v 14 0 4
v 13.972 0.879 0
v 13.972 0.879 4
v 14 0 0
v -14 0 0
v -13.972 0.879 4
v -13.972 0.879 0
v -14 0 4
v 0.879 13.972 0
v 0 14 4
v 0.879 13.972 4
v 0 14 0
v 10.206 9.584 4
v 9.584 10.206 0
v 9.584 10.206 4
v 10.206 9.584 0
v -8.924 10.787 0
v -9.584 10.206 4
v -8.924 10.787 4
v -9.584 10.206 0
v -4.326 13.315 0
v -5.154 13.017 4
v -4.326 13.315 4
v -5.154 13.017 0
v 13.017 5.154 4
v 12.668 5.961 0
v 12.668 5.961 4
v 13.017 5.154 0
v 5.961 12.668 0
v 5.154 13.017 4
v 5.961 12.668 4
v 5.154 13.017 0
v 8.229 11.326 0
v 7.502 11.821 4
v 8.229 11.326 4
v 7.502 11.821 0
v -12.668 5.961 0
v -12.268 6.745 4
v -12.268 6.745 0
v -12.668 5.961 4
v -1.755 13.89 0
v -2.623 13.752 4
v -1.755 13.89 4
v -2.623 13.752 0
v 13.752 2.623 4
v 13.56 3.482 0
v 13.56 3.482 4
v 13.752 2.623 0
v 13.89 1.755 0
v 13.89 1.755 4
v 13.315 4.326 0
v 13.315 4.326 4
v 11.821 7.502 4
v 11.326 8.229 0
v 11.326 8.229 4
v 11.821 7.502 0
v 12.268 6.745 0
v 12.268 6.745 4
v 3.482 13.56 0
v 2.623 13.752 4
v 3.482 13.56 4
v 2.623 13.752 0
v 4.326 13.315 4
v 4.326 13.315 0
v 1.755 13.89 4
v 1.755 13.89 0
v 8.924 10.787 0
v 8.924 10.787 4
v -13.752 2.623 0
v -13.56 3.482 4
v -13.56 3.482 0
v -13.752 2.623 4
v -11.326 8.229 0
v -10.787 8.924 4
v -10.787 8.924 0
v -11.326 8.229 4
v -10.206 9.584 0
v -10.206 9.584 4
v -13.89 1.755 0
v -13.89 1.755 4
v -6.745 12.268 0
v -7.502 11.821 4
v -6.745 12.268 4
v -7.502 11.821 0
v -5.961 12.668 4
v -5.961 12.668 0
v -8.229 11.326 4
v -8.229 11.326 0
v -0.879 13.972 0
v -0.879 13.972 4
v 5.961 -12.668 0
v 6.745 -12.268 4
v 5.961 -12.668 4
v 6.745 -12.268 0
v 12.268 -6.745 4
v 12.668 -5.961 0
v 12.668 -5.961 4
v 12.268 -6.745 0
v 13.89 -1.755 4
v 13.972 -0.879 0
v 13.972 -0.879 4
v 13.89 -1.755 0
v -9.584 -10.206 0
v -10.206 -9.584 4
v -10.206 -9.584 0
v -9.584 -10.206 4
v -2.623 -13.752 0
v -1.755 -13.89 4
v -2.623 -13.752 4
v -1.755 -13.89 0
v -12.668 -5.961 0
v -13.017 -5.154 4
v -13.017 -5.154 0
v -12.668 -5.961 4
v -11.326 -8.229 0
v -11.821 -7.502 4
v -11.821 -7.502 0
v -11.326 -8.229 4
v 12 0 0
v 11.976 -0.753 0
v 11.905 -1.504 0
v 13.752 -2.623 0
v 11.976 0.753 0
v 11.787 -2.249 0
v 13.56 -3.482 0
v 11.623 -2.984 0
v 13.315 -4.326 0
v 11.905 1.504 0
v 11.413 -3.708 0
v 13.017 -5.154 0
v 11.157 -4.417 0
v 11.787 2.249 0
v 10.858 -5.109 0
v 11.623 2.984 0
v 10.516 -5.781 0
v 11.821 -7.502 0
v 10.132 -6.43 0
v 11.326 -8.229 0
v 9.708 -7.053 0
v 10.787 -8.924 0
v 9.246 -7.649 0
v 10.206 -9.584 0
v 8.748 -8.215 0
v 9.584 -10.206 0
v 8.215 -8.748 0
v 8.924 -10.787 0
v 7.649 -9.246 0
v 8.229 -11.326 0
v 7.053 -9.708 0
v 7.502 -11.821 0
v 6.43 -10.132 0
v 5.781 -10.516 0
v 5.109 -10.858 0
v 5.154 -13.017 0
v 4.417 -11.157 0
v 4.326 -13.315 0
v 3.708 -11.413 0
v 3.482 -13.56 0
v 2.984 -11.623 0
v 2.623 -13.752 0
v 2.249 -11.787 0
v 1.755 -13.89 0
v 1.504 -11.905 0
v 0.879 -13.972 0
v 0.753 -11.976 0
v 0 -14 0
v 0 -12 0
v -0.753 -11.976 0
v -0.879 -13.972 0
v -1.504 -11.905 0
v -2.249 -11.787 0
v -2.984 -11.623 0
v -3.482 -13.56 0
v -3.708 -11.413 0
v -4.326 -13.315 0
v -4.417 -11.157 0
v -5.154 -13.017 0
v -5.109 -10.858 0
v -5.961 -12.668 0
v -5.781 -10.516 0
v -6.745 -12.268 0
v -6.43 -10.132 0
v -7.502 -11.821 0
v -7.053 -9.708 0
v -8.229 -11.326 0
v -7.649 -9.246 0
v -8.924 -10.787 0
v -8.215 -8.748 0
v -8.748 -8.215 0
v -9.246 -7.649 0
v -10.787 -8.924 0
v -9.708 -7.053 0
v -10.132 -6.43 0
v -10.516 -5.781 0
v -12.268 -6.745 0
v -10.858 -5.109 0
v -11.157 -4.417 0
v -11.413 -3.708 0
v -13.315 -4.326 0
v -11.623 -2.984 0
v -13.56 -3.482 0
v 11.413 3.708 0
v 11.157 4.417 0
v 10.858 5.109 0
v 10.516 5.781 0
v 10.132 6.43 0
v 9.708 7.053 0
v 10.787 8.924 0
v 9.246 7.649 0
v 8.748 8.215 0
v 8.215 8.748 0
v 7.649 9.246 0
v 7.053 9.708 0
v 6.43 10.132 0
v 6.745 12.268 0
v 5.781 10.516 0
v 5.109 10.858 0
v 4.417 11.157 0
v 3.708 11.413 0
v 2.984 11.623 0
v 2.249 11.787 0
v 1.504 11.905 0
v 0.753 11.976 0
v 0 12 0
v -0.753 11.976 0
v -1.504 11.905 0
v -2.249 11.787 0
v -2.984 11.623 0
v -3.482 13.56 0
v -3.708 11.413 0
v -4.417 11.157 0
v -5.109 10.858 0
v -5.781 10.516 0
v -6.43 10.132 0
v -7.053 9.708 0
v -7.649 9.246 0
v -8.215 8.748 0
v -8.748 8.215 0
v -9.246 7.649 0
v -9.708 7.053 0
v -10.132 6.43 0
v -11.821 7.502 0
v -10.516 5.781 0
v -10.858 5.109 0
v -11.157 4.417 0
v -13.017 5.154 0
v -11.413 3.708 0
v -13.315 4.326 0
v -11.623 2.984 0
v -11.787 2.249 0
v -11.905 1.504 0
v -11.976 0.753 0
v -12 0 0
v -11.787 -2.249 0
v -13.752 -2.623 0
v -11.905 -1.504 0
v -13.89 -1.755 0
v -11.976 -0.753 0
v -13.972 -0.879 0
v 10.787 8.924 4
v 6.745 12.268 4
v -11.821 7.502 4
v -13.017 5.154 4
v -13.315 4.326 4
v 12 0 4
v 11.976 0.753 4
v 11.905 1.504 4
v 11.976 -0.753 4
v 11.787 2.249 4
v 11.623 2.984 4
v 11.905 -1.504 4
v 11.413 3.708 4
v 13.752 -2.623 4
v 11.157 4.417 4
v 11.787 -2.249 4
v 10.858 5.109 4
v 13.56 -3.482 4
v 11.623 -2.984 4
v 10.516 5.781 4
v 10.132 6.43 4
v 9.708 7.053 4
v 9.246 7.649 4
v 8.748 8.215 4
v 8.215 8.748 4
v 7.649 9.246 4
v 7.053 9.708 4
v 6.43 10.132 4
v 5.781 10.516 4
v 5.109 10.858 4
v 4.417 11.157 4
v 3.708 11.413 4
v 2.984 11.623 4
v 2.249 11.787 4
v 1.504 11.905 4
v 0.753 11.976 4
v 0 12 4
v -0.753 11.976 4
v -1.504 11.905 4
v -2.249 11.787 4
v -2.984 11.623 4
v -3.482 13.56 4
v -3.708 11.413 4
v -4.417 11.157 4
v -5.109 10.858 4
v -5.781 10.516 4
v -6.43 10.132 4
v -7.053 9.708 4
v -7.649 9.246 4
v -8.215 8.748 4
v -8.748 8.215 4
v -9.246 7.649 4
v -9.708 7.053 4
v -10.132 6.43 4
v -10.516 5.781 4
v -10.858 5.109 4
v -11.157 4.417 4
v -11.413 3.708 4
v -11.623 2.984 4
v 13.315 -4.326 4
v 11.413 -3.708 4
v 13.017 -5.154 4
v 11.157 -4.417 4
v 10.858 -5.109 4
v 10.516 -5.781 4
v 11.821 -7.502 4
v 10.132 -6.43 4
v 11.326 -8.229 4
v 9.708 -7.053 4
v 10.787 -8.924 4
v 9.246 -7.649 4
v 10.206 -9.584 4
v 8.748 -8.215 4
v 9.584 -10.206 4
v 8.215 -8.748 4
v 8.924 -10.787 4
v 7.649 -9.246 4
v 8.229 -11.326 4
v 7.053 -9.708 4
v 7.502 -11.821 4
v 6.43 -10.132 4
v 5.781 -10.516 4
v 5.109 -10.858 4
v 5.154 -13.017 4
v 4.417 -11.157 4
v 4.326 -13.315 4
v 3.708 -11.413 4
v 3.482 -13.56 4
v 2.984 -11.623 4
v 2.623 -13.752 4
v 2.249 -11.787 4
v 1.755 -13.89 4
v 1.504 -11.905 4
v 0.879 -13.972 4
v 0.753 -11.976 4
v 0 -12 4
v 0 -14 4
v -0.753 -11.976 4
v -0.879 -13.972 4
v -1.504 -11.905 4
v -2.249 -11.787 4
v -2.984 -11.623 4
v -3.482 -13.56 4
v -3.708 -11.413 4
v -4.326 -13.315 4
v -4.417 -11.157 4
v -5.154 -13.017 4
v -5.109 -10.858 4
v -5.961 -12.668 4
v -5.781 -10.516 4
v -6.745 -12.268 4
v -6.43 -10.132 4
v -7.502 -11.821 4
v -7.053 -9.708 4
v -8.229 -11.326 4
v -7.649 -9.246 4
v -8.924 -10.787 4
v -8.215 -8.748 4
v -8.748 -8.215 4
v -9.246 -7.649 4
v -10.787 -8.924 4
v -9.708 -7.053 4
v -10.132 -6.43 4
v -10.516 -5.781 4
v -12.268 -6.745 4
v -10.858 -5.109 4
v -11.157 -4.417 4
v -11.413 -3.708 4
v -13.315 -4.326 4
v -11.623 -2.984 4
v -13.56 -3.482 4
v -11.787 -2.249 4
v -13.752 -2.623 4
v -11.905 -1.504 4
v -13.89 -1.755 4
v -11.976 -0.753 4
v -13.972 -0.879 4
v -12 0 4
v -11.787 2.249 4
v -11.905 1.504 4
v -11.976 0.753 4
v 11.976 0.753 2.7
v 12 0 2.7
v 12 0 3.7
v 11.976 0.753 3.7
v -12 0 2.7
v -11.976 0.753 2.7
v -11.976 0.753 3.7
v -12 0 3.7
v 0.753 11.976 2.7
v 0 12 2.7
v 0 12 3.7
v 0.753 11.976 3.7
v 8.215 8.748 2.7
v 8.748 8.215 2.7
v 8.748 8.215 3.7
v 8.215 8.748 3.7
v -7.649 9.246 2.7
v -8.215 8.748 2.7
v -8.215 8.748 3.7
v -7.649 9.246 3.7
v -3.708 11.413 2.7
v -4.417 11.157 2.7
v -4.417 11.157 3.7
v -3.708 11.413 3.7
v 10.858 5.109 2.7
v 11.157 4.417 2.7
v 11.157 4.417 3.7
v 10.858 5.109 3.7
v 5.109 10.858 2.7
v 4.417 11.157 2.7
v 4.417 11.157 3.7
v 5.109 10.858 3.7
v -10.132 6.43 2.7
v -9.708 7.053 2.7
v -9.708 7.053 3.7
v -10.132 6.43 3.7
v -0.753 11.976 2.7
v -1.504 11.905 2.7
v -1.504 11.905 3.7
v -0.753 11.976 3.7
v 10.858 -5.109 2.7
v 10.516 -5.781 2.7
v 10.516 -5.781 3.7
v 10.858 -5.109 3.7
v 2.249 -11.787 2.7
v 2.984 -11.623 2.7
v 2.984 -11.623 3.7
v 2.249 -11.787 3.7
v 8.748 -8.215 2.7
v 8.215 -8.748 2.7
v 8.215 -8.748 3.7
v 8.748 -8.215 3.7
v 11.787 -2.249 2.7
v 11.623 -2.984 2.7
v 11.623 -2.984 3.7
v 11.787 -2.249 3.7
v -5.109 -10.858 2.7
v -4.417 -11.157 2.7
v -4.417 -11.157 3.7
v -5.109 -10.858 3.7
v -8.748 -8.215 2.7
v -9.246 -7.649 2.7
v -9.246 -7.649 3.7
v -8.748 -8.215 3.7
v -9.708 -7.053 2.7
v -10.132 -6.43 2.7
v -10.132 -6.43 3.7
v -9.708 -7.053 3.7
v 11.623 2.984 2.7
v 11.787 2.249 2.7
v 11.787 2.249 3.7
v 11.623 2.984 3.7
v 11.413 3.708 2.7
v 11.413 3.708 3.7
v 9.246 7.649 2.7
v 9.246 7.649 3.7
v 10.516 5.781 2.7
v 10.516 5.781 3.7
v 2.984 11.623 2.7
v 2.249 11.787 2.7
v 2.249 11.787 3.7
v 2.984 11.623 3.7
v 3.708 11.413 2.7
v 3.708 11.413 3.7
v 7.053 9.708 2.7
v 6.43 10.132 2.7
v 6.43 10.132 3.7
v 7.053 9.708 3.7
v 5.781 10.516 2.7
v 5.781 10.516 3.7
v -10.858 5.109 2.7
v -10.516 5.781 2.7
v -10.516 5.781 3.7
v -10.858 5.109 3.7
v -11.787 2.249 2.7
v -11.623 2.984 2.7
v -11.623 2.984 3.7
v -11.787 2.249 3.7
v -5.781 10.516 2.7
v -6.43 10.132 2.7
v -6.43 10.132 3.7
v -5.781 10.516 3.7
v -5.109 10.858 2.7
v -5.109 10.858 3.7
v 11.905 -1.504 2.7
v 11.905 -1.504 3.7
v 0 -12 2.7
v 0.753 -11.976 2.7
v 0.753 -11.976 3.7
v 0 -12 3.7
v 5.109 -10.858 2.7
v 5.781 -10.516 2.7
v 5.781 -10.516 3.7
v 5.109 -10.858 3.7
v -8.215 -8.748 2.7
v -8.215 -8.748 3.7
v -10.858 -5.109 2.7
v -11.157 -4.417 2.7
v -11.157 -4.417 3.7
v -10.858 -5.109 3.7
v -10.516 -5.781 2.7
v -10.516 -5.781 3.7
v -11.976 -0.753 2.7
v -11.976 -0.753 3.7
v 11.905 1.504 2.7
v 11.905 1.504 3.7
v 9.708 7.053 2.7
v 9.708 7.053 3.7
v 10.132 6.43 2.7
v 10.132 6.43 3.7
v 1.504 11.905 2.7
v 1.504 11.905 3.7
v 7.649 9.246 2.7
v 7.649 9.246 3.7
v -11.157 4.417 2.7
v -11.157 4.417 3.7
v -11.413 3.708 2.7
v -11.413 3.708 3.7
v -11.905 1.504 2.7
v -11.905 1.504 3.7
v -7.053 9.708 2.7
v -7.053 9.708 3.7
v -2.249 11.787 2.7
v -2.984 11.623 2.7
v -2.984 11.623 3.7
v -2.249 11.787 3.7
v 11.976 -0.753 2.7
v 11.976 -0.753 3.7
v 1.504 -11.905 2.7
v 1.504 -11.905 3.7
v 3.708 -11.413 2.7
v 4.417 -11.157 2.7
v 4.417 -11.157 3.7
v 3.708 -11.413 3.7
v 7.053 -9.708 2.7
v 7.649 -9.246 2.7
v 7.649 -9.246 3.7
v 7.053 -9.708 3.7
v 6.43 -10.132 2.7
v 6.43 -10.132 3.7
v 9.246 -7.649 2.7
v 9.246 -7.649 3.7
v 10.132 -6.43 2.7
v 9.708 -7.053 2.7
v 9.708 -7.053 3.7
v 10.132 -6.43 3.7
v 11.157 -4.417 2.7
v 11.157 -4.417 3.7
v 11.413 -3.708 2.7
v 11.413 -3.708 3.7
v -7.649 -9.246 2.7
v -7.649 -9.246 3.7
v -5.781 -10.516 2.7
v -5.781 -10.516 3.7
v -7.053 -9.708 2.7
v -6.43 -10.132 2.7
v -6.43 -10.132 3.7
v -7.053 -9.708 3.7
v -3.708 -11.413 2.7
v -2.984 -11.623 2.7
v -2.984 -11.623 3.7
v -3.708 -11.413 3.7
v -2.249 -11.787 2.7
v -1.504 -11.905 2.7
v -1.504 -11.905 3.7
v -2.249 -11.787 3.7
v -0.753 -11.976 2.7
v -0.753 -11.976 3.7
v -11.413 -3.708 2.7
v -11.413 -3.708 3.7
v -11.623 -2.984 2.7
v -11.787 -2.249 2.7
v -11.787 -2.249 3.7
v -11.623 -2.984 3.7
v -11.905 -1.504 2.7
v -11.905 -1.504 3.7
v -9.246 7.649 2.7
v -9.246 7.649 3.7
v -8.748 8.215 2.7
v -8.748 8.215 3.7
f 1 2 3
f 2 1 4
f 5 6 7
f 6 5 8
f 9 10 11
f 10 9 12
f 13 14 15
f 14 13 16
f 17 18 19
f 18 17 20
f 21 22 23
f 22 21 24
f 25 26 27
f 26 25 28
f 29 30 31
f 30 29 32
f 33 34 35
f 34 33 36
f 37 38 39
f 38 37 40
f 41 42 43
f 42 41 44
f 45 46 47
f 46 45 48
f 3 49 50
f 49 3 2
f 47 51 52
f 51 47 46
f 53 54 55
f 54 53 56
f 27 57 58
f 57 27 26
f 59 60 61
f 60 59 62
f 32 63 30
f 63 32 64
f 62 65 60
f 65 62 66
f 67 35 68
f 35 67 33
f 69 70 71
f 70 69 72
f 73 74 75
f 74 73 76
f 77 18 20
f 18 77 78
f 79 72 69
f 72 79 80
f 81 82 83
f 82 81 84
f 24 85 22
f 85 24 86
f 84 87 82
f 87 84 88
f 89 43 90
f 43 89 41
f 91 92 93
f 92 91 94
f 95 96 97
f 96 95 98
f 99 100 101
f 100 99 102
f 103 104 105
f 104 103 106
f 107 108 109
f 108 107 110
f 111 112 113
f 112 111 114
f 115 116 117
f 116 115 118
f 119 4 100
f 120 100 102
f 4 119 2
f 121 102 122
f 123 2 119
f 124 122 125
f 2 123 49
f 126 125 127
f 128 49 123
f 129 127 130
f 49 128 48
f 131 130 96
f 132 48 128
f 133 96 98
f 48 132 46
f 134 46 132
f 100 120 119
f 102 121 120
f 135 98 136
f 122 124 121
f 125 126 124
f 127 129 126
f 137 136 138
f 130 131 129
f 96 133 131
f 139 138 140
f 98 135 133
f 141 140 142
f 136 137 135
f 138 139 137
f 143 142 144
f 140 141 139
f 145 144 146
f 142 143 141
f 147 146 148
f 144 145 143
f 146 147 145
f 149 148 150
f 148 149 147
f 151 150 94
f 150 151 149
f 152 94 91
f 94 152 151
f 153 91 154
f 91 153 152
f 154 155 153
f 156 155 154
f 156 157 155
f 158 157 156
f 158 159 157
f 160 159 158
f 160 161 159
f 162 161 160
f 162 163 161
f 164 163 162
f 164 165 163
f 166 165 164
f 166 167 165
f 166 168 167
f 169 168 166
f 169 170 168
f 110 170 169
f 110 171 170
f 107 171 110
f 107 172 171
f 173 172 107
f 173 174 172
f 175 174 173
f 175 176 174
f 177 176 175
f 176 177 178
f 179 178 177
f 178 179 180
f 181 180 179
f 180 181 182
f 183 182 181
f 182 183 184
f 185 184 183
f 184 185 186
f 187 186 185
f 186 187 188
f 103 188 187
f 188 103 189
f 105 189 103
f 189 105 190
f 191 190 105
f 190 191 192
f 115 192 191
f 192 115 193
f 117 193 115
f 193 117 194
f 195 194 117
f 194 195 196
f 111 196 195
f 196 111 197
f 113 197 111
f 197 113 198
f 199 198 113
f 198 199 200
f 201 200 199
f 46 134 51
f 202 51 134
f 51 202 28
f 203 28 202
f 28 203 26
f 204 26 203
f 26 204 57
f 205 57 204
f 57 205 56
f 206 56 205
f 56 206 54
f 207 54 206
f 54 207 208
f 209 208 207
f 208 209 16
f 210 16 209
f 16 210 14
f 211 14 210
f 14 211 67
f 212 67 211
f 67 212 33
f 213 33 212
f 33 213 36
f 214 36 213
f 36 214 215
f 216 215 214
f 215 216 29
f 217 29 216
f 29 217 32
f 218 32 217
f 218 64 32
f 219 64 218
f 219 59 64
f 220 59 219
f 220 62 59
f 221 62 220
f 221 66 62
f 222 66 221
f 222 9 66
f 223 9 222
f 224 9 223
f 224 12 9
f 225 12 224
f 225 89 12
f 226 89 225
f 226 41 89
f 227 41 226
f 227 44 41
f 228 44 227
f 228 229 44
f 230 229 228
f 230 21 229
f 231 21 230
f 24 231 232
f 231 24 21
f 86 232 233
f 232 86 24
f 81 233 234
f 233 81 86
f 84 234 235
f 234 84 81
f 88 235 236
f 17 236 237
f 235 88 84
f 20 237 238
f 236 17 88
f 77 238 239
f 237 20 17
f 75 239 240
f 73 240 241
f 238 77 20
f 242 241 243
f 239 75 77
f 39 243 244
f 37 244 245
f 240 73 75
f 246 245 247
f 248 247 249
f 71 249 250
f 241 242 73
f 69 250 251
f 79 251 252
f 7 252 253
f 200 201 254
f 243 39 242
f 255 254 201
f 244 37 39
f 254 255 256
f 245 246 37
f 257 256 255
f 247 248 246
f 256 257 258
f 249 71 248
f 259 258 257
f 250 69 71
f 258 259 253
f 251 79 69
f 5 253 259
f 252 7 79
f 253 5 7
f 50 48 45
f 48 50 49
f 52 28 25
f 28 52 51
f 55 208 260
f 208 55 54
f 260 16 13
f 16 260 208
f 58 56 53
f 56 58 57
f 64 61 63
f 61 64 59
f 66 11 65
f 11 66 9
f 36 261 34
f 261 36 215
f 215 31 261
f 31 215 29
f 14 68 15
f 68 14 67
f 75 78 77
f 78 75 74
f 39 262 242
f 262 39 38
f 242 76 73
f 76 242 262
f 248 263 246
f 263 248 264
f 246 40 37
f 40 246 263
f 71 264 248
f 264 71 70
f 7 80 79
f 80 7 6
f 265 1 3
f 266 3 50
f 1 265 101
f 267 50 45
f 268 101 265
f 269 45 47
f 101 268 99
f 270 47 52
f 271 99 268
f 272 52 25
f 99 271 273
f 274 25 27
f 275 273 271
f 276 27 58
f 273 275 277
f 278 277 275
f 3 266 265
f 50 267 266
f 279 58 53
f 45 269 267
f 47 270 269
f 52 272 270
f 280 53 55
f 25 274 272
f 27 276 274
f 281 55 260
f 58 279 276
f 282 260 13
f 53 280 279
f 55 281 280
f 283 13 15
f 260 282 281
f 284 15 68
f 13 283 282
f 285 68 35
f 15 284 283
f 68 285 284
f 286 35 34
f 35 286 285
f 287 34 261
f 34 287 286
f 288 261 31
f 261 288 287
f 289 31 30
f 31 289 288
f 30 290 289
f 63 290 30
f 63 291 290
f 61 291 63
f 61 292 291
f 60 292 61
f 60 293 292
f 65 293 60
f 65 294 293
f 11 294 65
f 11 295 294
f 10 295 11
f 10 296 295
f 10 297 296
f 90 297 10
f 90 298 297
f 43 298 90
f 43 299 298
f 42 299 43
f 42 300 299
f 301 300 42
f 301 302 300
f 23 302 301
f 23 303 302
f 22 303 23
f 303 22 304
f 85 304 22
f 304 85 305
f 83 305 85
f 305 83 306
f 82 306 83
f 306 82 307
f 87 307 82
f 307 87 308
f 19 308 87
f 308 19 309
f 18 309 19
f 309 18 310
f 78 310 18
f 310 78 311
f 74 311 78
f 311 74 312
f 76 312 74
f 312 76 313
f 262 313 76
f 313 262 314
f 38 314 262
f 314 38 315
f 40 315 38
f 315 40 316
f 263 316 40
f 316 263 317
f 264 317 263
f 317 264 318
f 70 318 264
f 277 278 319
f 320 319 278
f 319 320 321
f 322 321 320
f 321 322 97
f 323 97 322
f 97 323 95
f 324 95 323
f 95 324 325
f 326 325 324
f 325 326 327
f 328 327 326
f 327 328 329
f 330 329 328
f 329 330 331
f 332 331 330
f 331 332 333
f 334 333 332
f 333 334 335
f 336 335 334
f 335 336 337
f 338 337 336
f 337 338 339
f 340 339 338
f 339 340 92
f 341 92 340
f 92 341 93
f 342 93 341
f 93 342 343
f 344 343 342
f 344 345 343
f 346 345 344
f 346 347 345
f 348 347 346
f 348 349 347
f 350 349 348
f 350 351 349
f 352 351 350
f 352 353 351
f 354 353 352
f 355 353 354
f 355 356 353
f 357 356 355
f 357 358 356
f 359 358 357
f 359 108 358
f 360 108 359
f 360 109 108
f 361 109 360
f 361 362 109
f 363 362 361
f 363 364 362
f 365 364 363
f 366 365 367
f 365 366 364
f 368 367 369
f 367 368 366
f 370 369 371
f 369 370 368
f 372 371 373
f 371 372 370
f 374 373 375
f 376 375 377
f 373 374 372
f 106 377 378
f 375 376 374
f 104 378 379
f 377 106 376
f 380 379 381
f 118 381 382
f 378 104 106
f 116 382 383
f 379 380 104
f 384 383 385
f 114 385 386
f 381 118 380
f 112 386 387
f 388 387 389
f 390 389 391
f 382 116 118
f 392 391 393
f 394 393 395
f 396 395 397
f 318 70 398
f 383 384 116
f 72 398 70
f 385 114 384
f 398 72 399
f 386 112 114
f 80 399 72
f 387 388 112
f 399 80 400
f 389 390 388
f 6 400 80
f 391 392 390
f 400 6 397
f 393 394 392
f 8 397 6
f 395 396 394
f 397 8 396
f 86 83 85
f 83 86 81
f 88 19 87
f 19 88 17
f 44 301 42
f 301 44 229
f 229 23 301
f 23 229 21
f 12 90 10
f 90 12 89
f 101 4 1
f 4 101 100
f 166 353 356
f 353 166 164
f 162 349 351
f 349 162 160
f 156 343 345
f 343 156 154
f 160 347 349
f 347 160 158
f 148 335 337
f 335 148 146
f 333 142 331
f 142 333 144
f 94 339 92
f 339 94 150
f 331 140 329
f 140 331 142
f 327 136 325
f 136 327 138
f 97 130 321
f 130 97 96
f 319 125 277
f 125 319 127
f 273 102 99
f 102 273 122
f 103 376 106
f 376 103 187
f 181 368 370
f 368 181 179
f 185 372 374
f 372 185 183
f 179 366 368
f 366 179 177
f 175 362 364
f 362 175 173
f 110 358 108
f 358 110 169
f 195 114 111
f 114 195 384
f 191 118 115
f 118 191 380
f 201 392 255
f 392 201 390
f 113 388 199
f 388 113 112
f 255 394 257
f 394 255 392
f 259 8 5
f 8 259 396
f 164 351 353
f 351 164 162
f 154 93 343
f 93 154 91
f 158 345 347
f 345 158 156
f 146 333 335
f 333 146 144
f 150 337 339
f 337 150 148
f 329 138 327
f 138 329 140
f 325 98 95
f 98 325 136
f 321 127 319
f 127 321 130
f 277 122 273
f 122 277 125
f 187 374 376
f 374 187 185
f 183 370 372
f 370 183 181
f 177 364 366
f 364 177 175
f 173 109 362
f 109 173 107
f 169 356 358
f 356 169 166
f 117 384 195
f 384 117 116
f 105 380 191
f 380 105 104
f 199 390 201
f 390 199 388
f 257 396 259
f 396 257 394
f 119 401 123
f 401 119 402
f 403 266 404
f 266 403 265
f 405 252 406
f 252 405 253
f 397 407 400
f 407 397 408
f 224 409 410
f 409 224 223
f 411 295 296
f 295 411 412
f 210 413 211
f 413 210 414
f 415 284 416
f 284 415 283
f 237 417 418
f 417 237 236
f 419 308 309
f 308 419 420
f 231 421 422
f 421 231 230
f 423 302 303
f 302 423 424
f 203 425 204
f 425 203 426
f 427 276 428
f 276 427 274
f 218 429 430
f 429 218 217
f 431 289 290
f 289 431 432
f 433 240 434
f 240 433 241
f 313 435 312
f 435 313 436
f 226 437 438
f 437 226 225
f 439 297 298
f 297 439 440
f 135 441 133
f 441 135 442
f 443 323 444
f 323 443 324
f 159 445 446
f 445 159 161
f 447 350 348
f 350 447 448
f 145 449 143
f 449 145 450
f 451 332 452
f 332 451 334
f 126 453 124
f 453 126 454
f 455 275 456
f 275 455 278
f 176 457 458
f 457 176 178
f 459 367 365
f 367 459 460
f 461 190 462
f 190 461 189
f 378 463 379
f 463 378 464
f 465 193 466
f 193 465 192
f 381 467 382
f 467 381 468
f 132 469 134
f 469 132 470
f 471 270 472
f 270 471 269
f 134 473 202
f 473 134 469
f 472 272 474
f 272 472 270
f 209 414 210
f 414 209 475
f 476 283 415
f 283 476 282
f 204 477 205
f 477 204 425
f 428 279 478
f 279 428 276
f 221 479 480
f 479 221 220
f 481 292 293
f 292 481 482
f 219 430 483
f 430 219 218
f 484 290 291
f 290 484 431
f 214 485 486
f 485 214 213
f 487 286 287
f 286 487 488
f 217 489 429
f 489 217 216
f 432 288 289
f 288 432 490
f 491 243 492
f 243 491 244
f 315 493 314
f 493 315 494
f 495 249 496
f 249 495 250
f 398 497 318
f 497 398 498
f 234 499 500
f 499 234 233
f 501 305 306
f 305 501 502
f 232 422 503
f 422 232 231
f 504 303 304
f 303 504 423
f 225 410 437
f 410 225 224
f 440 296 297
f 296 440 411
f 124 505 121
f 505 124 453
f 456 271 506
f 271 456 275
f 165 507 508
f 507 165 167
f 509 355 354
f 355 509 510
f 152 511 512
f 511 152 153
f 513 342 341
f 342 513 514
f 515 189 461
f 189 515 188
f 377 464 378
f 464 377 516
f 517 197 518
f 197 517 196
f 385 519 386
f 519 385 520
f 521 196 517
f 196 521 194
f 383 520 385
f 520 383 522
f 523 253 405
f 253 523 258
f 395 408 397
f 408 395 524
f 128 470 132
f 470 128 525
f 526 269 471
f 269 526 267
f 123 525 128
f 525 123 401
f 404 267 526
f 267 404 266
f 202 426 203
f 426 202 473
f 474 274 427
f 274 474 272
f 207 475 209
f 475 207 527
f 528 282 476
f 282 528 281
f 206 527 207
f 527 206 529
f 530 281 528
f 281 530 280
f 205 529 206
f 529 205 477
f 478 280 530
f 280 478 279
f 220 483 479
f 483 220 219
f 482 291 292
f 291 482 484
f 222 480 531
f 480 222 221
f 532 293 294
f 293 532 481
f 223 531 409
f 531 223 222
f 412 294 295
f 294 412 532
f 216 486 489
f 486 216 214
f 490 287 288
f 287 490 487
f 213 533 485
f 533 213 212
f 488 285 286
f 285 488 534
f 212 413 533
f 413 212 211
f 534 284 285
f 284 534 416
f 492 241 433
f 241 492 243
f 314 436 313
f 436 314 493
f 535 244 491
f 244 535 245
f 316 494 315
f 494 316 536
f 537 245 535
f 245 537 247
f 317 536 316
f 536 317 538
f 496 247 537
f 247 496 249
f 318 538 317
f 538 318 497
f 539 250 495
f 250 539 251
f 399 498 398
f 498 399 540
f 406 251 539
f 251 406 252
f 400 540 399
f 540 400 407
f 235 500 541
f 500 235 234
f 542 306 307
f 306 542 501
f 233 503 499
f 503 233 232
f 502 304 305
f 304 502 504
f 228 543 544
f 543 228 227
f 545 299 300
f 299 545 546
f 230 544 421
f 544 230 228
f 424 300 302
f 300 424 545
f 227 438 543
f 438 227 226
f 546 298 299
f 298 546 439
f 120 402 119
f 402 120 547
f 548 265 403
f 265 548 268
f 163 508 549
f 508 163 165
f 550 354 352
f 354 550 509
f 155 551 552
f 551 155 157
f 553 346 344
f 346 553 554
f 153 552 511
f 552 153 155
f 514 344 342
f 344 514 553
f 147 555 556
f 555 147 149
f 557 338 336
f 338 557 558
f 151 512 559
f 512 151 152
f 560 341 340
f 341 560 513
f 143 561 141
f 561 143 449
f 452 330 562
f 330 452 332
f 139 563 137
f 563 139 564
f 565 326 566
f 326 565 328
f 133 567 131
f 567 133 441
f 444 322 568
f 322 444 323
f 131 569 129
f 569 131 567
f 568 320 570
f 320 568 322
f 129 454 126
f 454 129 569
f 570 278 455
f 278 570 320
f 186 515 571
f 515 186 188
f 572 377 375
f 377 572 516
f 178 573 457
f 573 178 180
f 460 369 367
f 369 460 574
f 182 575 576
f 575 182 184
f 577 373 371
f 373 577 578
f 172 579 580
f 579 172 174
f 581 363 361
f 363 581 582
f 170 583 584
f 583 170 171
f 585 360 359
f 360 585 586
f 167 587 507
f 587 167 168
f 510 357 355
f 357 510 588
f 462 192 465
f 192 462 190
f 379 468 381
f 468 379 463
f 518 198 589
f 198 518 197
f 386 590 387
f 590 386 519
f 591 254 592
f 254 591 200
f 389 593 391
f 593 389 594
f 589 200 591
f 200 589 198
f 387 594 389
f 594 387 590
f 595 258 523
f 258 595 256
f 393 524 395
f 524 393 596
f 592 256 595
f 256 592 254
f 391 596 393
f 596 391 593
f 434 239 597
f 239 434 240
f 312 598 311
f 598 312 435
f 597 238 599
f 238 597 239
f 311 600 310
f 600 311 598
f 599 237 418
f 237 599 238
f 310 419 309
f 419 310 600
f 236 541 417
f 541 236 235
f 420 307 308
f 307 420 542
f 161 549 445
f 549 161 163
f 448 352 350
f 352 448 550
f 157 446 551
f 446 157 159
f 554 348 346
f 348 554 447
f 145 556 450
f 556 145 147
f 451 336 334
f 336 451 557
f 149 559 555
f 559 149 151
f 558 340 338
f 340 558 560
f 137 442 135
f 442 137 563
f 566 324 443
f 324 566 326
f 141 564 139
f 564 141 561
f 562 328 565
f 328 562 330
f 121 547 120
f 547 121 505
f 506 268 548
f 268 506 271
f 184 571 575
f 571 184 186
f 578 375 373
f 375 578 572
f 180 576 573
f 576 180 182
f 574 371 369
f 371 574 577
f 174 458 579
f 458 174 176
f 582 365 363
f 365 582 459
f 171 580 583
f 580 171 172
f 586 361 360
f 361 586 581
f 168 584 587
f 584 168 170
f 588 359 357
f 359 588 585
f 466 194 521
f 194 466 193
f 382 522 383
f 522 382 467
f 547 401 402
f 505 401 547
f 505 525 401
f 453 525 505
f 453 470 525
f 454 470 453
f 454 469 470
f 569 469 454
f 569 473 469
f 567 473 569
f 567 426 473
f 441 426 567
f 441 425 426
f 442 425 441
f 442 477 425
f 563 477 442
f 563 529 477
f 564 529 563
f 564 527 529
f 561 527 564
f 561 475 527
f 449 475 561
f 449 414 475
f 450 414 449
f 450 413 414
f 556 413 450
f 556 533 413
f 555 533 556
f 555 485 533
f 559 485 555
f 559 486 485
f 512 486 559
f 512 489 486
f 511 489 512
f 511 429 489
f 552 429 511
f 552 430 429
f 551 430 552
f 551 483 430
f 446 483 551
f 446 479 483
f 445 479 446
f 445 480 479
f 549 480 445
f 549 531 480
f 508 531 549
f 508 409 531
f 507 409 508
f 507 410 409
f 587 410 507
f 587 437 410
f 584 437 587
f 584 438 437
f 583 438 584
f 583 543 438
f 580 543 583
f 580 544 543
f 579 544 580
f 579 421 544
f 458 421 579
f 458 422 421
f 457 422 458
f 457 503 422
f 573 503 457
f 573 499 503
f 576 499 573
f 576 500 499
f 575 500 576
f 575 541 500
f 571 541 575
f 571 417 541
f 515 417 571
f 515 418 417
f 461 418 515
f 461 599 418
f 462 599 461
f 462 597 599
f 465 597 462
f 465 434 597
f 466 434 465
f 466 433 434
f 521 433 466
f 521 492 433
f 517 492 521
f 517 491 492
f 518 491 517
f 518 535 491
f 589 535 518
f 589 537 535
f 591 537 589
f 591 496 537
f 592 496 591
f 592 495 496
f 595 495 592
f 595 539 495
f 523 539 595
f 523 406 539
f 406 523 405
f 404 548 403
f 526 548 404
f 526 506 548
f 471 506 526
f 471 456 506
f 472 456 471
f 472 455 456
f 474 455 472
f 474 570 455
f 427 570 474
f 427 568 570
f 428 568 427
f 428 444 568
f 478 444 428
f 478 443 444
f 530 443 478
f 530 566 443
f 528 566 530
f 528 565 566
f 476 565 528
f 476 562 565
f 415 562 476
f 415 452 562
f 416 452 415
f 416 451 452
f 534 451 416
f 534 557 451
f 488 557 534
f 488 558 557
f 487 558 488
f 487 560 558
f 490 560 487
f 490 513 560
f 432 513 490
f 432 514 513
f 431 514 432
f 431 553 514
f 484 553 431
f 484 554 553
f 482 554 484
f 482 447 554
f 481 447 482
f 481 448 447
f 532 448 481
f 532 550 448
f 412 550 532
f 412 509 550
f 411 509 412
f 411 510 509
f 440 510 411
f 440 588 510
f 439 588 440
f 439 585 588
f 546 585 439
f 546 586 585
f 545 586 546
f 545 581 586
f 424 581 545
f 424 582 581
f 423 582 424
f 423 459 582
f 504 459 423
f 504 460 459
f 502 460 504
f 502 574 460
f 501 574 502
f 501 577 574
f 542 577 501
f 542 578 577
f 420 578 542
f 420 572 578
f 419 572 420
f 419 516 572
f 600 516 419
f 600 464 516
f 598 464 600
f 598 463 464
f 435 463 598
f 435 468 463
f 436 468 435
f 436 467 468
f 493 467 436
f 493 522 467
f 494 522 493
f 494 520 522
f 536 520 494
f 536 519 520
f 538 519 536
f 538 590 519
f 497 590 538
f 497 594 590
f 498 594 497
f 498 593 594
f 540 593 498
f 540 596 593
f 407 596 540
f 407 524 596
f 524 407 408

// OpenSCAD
color("black", 1)
difference()
{
    cylinder(d=28, h=4, $fn=100);
    translate([0,0,-0.1])
    cylinder(d=24, h=4.5, $fn=100);
}

translate([0, 0, 2.7])
color("red", 0.3)
cylinder(d=25,h=1, $fn=100);
